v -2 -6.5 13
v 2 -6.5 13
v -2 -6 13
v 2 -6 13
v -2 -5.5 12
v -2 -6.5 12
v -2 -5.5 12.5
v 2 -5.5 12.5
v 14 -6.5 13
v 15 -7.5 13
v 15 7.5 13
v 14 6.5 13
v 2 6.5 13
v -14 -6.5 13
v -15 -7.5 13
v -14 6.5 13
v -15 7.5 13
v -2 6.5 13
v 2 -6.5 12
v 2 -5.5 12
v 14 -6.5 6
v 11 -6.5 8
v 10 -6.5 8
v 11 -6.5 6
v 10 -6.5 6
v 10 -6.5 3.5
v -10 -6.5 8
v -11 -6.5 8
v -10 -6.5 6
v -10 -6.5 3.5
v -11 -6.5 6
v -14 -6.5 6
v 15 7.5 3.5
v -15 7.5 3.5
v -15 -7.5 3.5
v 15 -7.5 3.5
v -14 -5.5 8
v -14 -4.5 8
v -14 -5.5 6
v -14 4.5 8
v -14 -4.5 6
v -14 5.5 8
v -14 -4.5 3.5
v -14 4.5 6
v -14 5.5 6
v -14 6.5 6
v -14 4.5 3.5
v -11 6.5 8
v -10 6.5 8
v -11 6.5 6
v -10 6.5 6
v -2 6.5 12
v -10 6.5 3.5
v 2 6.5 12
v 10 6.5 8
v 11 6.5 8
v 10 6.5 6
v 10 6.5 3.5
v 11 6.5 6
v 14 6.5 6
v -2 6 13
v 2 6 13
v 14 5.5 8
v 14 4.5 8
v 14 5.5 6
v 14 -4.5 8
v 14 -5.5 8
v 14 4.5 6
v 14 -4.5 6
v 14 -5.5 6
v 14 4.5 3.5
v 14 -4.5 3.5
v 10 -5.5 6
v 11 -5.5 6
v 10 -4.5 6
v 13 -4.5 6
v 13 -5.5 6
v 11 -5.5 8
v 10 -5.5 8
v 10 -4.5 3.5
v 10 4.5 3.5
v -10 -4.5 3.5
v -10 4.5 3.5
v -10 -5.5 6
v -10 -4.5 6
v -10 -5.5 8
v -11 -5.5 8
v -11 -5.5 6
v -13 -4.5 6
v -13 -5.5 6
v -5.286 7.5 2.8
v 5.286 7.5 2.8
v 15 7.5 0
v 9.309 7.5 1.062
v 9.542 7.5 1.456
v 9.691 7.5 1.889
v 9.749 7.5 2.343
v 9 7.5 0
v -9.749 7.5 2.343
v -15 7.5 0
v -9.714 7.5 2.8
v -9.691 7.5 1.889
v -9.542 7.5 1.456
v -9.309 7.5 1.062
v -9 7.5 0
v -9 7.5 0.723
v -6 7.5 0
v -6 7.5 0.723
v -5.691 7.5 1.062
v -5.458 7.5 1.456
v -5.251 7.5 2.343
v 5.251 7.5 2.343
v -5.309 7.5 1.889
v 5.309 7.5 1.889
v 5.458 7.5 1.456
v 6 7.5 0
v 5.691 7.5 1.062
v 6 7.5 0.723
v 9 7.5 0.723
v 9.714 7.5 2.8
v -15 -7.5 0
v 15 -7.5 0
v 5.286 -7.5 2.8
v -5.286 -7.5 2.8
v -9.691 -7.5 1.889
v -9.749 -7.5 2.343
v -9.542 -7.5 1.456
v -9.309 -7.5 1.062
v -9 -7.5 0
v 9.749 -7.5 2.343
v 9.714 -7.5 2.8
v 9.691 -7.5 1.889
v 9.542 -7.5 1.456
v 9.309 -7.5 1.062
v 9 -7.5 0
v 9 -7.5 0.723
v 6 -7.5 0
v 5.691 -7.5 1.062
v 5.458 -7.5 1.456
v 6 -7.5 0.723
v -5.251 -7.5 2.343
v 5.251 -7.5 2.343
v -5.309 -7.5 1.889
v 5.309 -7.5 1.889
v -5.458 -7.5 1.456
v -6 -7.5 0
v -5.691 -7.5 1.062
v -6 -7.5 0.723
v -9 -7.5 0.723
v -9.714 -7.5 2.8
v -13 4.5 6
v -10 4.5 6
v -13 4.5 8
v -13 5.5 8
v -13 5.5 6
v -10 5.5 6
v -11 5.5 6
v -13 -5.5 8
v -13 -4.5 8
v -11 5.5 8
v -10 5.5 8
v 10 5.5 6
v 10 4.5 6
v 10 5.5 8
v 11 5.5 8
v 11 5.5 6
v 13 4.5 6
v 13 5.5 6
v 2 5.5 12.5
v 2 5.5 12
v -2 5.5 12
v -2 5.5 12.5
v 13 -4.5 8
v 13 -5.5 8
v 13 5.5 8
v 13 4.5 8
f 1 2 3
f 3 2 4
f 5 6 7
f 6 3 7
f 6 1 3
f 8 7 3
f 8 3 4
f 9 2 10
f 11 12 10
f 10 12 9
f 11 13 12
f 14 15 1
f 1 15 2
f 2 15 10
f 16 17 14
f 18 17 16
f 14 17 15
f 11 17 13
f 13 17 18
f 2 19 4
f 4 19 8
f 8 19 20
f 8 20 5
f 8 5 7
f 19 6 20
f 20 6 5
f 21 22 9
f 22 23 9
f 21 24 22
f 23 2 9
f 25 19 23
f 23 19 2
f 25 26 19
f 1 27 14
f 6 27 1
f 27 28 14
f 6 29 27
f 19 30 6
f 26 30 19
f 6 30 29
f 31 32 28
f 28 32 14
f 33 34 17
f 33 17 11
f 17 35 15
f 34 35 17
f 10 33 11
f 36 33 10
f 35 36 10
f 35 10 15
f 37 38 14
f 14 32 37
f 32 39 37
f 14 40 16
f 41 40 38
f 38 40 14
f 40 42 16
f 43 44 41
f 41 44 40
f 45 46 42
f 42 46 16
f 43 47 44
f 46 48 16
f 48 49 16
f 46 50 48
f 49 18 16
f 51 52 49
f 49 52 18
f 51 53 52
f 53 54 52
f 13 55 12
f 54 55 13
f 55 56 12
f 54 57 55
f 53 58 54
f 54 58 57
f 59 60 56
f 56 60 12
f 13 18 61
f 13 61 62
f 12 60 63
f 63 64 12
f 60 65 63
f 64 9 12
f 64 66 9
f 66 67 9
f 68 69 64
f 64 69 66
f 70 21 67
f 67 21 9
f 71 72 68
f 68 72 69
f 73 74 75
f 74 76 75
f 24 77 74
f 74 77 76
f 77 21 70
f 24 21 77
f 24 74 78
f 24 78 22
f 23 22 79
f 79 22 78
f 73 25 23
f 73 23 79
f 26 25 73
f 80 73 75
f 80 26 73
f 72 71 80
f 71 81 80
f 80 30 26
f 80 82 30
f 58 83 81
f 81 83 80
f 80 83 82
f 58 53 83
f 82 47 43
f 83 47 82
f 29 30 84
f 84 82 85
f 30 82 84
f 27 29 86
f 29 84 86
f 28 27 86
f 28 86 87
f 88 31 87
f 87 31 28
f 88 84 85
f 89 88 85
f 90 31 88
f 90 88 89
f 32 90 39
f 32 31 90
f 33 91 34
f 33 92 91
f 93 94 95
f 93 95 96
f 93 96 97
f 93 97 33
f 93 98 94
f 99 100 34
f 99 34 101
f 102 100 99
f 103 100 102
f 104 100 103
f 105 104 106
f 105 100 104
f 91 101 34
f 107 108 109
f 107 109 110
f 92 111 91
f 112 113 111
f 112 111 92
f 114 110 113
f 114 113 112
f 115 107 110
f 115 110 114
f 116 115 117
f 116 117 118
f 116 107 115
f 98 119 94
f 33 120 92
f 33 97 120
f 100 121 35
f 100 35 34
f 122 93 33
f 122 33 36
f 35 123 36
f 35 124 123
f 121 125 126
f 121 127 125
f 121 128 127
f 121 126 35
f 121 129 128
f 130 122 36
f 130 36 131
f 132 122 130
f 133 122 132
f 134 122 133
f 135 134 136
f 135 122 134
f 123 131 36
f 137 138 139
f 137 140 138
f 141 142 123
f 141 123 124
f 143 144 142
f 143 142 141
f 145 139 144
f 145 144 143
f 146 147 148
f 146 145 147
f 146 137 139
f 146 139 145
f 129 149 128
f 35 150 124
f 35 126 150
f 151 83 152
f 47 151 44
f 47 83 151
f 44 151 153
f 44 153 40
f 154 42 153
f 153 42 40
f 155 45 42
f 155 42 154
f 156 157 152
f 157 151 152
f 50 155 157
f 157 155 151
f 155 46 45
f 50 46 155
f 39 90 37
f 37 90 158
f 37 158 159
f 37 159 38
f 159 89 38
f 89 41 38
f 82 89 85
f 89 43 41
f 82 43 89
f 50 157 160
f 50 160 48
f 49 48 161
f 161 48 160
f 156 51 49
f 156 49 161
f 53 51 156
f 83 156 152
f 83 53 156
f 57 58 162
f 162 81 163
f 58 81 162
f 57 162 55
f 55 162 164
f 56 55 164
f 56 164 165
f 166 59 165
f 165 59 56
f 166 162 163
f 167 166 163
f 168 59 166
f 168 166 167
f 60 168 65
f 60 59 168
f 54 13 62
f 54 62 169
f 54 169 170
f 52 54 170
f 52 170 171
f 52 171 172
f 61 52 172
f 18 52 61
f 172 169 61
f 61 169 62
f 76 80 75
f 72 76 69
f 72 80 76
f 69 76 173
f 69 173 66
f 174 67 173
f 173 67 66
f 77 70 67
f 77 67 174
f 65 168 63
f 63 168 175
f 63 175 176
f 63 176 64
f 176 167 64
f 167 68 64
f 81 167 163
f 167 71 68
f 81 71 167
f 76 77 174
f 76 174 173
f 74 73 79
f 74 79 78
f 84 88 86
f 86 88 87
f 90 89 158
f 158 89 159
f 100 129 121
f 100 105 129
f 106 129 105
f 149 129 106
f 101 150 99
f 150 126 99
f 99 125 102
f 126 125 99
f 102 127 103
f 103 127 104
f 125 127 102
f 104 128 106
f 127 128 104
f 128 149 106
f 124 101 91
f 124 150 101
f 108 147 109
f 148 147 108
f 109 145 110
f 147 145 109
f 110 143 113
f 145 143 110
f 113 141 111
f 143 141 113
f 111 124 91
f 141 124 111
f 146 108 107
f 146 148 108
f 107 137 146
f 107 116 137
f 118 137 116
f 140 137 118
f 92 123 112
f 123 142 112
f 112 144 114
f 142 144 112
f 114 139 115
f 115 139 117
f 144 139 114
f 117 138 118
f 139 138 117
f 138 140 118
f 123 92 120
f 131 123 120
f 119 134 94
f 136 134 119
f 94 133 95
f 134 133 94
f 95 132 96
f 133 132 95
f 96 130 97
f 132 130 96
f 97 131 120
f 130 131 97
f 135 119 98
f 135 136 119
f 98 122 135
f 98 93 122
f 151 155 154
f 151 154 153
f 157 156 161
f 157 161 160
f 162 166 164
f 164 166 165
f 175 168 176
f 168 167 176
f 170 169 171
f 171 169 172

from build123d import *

# Parameters (mm, degrees)
SKETCH_W                   = 30
SKETCH_H                   = 15
PAD_DEPTH                  = 3.5
POCKET_DEPTH               = 15.001
LINEARPATTERN_COUNT        = 2
LINEARPATTERN_PITCH        = 15
SKETCH003_W                = 4
SKETCH003_H                = 2
PAD001_DEPTH               = 2.5
SKETCH003_MIRRORED_2_W     = 4
SKETCH003_MIRRORED_2_H     = 2
PAD001_MIRRORED_2_DEPTH    = 2.5
SKETCH004_W                = 30
SKETCH004_H                = 15
SKETCH004_W_2              = 28
SKETCH004_H_2              = 13
PAD002_DEPTH               = 9.5
SKETCH005_W                = 1
SKETCH005_H                = 1
PAD003_DEPTH               = 2
SKETCH005_MIRRORED002_2_W  = 1
SKETCH005_MIRRORED002_2_H  = 1
PAD003_MIRRORED002_2_DEPTH = 2
SKETCH006_W                = 4
SKETCH006_H                = 1
PAD004_DEPTH               = 1
CHAMFER_SIZE               = 0.5


with BuildPart() as part:
    # Sketch → Pad (new body)
    with BuildSketch(Plane.XY):
        Rectangle(SKETCH_W, SKETCH_H)
    extrude(amount=PAD_DEPTH)

    # Sketch002 (on Face3 of Pad) → Pocket (cut, through all)
    with BuildSketch(Plane.XZ.offset(7.5)):
        with BuildLine():
            Line((-9, 0.722949), (-9, 0))
            Line((-9, 0), (-6, 0))
            Line((-6, 0.722949), (-6, 0))
            ThreePointArc((-6, 0.722949), (-5.37226, 1.668412), (-5.285841, 2.8))
            Line((-9.714159, 2.8), (-5.285841, 2.8))
            ThreePointArc((-9.714159, 2.8), (-9.62774, 1.668412), (-9, 0.722949))
        make_face()
    pocket = extrude(amount=-POCKET_DEPTH, mode=Mode.SUBTRACT)

    # LinearPattern: Pocket ×2
    with Locations(*[(i * LINEARPATTERN_PITCH, 0, 0) for i in range(1, LINEARPATTERN_COUNT)]):
        add(pocket, mode=Mode.SUBTRACT)

    # Sketch003 (on Face16 of LinearPattern) → Pad001 (join)
    with BuildSketch(Plane.XY.offset(3.5)):
        with Locations((-12, 5.5)):
            Rectangle(SKETCH003_W, SKETCH003_H)
    pad001 = extrude(amount=PAD001_DEPTH)

    # Sketch003 Mirrored 2 → Pad001 Mirrored 2 (add)
    with BuildSketch(Plane(origin=(0, 0, 3.5), x_dir=(-1, 0, 0), z_dir=(0, 0, -1))):
        with Locations((-12, 5.5)):
            Rectangle(SKETCH003_MIRRORED_2_W, SKETCH003_MIRRORED_2_H)
    pad001_mirrored_2 = extrude(amount=-PAD001_MIRRORED_2_DEPTH)

    # Mirrored001: Pad001, Pad001 Mirrored 2 across XZ
    add(pad001.mirror(Plane.XZ))
    add(pad001_mirrored_2.mirror(Plane.XZ))

    # Sketch004 (on Face16 of MultiTransform) → Pad002 (join)
    with BuildSketch(Plane.XY.offset(3.5)):
        Rectangle(SKETCH004_W, SKETCH004_H)
        Rectangle(SKETCH004_W_2, SKETCH004_H_2, mode=Mode.SUBTRACT)
    extrude(amount=PAD002_DEPTH)

    # Sketch005 (on Face31 of Pad002) → Pad003 (join)
    with BuildSketch(Plane.XY.offset(6)):
        with Locations((-10.5, 6)):
            Rectangle(SKETCH005_W, SKETCH005_H)
        with Locations((-13.5, 5)):
            Rectangle(SKETCH005_W, SKETCH005_H)
    pad003 = extrude(amount=PAD003_DEPTH)

    # Sketch005 Mirrored002 2 → Pad003 Mirrored002 2 (add)
    with BuildSketch(Plane(origin=(0, 0, 6), x_dir=(-1, 0, 0), z_dir=(0, 0, -1))):
        with Locations((-10.5, 6)):
            Rectangle(SKETCH005_MIRRORED002_2_W, SKETCH005_MIRRORED002_2_H)
        with Locations((-13.5, 5)):
            Rectangle(SKETCH005_MIRRORED002_2_W, SKETCH005_MIRRORED002_2_H)
    pad003_mirrored002_2 = extrude(amount=-PAD003_MIRRORED002_2_DEPTH)

    # Mirrored003: Pad003, Pad003 Mirrored002 2 across XZ
    add(pad003.mirror(Plane.XZ))
    add(pad003_mirrored002_2.mirror(Plane.XZ))

    # Sketch006 (on Face26 of MultiTransform001) → Pad004 (join)
    with BuildSketch(Plane.XZ.offset(-6.5)):
        with Locations((0, 12.5)):
            Rectangle(SKETCH006_W, SKETCH006_H)
    pad004 = extrude(amount=PAD004_DEPTH)

    # Mirrored004: Pad004 across XZ
    add(pad004.mirror(Plane.XZ))

    # Chamfer
    chamfer_edges = [part.edges().sort_by_distance(p)[0] for p in [
        (0, 5.5, 13),
        (0, -5.5, 13),
    ]]
    chamfer(chamfer_edges, length=CHAMFER_SIZE)


solid = part.part
